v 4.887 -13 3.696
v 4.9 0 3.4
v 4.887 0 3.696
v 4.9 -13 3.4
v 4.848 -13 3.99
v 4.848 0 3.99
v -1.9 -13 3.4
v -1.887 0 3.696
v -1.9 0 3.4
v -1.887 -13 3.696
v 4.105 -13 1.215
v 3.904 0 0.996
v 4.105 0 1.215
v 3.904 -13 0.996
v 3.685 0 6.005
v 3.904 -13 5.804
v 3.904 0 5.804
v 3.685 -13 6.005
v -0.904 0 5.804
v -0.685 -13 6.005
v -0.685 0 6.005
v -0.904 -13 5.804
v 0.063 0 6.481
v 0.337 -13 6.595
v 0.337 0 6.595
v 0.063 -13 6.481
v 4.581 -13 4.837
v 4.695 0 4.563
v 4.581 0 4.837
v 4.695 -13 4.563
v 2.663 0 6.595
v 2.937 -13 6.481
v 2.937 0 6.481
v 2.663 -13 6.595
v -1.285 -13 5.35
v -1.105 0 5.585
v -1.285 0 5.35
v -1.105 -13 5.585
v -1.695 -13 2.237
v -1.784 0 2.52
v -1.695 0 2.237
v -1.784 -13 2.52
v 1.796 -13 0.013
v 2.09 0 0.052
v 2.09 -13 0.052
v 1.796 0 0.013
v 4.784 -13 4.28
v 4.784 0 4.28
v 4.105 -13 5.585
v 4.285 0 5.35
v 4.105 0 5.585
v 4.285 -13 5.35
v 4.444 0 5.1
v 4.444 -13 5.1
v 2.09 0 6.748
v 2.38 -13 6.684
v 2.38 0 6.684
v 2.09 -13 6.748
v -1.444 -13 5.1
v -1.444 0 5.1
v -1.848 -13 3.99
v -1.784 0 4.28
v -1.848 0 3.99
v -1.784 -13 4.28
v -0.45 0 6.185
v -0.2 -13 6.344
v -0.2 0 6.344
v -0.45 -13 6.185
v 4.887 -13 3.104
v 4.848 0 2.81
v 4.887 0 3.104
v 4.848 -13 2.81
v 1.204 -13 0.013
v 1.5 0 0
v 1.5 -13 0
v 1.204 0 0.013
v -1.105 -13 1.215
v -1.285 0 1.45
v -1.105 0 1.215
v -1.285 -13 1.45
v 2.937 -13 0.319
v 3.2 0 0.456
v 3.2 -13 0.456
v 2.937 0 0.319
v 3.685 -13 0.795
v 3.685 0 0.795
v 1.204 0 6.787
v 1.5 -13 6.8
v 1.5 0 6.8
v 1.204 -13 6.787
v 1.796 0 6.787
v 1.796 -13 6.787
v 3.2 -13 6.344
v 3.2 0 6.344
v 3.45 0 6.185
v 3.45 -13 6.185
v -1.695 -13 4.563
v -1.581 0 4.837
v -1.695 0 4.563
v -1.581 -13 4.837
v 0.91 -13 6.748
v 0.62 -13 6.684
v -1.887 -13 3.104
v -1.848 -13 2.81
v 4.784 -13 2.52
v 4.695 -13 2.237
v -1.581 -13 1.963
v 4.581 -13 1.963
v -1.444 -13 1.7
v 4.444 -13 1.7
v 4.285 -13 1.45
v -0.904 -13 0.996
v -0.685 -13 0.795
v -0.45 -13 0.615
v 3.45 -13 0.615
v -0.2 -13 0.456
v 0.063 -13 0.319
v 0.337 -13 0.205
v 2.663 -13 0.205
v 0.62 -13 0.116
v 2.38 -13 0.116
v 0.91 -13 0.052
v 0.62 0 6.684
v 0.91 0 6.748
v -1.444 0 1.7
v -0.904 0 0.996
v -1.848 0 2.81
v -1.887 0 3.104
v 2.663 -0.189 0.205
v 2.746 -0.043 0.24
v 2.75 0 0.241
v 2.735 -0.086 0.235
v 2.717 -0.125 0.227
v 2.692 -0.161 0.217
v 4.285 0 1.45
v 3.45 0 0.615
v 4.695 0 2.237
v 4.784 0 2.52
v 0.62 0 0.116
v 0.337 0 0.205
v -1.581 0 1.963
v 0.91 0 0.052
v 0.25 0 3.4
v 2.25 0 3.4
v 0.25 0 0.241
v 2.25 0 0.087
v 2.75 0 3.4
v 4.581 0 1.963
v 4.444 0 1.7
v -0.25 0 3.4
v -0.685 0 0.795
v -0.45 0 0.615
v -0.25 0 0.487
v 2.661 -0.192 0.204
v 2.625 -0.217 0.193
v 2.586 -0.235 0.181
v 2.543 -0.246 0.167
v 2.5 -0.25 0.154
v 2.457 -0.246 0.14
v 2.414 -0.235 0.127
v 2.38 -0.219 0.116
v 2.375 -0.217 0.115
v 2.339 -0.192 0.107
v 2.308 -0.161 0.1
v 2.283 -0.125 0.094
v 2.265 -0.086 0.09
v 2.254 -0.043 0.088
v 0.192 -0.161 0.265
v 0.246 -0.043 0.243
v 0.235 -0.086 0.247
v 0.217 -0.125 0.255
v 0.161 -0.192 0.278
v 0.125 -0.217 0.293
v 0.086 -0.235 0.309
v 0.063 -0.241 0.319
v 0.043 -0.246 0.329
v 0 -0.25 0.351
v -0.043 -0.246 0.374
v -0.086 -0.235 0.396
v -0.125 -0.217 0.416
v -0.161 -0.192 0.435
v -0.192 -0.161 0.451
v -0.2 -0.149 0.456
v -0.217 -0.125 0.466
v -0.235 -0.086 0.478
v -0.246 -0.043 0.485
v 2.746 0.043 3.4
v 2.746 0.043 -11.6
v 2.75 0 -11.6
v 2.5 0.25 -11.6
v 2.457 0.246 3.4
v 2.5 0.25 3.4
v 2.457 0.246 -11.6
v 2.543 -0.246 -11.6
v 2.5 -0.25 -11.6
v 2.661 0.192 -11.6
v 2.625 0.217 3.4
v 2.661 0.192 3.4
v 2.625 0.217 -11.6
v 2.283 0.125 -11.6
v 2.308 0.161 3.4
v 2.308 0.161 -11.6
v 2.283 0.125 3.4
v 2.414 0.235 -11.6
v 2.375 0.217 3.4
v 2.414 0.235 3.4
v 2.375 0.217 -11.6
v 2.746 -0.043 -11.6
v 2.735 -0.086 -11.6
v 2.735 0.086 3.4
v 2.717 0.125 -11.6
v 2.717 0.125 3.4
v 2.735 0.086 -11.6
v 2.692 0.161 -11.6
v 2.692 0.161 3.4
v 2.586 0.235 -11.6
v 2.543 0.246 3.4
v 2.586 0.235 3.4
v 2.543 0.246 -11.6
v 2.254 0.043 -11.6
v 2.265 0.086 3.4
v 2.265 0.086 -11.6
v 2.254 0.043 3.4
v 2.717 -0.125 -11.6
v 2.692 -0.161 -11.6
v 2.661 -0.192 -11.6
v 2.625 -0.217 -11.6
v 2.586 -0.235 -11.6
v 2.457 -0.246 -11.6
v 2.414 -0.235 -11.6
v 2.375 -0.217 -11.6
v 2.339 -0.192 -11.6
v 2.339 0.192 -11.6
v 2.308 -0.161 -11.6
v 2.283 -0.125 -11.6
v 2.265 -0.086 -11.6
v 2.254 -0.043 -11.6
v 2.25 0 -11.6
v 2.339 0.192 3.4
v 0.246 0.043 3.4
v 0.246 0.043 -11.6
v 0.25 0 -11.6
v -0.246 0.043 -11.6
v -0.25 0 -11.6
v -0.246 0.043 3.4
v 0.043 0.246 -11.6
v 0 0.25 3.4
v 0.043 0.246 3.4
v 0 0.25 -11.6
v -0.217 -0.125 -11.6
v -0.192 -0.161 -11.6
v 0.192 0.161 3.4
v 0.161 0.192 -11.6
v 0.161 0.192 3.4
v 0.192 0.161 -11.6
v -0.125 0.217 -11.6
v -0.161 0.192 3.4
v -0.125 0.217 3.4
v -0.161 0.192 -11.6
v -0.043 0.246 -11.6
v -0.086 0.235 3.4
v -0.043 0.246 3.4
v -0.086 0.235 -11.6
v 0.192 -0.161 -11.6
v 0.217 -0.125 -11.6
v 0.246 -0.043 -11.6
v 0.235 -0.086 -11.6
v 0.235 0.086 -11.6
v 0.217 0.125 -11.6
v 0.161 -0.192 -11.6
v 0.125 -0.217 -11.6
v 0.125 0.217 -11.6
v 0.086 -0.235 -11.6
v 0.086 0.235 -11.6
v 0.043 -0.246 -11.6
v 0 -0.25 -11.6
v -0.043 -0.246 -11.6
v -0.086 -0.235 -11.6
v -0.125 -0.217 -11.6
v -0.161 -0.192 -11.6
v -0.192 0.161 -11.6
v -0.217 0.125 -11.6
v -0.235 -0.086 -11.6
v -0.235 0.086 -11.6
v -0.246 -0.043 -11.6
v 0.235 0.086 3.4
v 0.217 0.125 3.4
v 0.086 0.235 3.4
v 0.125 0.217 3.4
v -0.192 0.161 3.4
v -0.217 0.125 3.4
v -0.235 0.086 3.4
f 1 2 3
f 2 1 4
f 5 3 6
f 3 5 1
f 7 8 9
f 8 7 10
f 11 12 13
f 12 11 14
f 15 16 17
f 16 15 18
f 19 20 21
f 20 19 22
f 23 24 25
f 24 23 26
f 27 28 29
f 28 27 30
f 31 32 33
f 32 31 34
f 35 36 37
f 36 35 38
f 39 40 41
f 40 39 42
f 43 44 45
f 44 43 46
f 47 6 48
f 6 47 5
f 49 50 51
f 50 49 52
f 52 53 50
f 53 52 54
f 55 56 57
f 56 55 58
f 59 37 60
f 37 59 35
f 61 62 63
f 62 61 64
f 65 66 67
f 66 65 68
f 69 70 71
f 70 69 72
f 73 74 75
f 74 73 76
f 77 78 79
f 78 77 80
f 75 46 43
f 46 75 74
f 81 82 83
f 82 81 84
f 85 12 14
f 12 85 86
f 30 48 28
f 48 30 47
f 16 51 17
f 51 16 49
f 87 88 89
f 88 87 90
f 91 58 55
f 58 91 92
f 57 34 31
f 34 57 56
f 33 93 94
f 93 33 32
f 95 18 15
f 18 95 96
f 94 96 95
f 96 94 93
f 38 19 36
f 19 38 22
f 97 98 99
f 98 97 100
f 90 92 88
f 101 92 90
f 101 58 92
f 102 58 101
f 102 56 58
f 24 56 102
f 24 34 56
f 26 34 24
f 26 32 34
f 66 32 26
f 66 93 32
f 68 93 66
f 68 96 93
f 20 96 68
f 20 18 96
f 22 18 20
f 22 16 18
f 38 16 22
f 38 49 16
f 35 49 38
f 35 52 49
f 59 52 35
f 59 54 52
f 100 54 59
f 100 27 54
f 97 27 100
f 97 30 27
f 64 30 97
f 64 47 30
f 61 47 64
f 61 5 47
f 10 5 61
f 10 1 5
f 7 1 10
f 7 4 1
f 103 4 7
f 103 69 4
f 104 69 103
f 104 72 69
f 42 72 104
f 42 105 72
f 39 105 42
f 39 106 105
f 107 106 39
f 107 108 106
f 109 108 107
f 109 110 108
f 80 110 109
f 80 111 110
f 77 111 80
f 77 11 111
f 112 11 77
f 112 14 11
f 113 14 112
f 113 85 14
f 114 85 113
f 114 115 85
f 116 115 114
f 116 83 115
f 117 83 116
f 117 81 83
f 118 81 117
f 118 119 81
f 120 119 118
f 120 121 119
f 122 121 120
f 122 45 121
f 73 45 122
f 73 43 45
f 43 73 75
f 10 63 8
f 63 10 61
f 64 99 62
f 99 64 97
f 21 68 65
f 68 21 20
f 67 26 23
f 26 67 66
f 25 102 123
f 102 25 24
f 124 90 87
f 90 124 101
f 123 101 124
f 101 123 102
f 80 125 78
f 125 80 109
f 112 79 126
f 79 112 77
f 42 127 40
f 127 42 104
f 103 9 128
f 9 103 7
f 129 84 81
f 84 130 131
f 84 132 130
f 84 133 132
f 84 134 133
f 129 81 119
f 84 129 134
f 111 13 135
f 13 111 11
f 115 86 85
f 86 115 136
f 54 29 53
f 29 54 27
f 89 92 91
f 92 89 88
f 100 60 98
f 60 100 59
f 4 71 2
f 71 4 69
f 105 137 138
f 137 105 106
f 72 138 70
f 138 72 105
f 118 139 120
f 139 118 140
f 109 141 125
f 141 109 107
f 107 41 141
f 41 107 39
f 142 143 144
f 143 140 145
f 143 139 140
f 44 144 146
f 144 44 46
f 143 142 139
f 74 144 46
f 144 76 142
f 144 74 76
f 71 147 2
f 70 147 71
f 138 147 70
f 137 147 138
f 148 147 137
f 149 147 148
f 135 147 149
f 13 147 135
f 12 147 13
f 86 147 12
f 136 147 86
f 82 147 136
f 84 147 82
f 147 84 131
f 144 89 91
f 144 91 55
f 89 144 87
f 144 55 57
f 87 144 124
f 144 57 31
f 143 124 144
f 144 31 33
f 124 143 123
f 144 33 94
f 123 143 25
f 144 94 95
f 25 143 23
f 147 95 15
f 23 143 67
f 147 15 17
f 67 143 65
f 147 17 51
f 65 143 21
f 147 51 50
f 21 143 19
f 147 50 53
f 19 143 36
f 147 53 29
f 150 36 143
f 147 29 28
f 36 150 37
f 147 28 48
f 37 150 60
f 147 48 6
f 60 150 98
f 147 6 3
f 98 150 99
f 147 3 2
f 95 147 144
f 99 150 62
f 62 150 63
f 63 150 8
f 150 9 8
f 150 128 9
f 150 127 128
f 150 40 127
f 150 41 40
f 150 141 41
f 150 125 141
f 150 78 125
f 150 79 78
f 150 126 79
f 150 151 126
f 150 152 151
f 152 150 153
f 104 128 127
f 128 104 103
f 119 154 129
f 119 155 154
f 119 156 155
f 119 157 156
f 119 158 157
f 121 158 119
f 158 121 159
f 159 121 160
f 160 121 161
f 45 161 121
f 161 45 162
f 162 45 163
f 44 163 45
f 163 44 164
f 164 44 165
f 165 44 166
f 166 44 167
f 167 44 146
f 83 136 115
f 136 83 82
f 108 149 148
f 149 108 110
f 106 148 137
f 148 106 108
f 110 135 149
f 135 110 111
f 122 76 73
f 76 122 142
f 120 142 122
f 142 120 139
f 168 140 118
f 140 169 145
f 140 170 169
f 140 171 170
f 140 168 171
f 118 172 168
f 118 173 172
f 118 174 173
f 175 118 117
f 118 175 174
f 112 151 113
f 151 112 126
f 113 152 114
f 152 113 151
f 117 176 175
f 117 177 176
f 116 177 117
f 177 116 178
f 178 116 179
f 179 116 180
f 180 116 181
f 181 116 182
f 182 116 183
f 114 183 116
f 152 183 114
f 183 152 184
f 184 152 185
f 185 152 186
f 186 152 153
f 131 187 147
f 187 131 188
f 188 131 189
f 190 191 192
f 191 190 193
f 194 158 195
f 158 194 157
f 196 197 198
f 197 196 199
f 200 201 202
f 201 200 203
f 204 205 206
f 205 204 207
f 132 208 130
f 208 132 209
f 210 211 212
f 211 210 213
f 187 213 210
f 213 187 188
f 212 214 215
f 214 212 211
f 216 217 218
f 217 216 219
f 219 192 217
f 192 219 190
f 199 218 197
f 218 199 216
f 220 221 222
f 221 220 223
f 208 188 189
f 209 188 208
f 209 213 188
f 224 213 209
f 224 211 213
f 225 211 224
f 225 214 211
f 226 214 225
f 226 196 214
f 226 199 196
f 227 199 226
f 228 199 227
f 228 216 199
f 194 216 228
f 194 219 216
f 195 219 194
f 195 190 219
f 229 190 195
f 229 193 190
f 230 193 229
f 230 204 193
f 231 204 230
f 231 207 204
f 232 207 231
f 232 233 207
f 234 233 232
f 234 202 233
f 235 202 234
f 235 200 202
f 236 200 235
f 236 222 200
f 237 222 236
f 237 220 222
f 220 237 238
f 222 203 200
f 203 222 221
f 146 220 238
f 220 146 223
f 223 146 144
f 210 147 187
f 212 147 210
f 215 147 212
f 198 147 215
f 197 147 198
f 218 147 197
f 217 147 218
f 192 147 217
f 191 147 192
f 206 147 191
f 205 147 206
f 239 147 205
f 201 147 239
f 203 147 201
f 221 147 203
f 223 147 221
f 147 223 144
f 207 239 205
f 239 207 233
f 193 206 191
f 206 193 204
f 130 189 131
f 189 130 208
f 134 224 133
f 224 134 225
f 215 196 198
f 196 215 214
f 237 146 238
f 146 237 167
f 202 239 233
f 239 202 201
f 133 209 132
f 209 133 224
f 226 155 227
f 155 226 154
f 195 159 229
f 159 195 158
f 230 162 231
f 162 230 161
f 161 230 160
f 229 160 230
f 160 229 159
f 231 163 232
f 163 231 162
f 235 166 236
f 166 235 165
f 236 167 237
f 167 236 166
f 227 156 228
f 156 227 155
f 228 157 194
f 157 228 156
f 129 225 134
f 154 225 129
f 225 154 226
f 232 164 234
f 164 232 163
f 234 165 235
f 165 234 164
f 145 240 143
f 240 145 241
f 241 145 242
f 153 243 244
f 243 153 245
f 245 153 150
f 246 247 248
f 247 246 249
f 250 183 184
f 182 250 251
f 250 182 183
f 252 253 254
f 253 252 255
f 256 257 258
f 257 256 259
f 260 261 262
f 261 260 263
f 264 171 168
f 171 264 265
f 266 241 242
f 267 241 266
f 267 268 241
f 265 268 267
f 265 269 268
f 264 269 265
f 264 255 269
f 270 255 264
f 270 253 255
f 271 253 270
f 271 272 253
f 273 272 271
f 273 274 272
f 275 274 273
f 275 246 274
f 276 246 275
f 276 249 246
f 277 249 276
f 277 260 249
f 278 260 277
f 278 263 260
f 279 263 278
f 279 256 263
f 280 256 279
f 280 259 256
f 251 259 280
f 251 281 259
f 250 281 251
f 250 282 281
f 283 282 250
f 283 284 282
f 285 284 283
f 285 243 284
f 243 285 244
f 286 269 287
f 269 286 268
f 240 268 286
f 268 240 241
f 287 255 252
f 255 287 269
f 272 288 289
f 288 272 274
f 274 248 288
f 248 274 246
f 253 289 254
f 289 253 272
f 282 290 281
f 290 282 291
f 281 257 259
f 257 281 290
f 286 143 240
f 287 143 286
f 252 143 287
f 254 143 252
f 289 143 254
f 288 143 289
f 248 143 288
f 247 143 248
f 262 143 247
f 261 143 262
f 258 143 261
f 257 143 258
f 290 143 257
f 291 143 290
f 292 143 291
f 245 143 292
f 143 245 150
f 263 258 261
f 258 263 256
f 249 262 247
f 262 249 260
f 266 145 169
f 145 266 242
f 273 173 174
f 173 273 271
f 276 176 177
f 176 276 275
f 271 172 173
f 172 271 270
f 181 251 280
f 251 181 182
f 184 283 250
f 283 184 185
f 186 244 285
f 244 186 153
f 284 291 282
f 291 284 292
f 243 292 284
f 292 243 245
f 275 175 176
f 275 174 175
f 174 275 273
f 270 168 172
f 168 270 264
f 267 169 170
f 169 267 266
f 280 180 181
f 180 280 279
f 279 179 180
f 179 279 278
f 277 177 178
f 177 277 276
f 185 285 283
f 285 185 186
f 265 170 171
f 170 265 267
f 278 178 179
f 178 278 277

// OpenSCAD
mm = 1;

//dimensons
CAP_HEIGHT_NOM = 12.5 * mm;
CAP_HEIGHT_TOL = 0.5 * mm;
CAP_DIA_NOM = 6.3 * mm;
CAP_DIA_TOL = 0.5 * mm;
CAP_LEG_DIA_NOM = 0.5 * mm;
CAP_LEG_PITCH = 2.5 * mm;
CAP_LEG_LENGTH_MIN = 15 * mm;

//calculated values
CAP_HEIGHT_MAX = CAP_HEIGHT_NOM + CAP_HEIGHT_TOL;
CAP_DIA_MAX = CAP_DIA_NOM + CAP_DIA_TOL;

translate([CAP_LEG_PITCH/2,0,0]){
translate([CAP_LEG_DIA_NOM/2,0,CAP_DIA_MAX/2]){
    rotate([90, 0, 0]){
  cylinder(h=CAP_HEIGHT_MAX, d = CAP_DIA_MAX, $fn = 72);
    }
}
    translate([CAP_LEG_PITCH/2, 0, -(CAP_LEG_LENGTH_MIN-CAP_DIA_MAX/2) ]){
        cylinder(h = CAP_LEG_LENGTH_MIN, d = CAP_LEG_DIA_NOM, $fn = 36);
    }
     translate([-CAP_LEG_PITCH/2, 0, -(CAP_LEG_LENGTH_MIN- CAP_DIA_MAX/2) ]){
        cylinder(h = CAP_LEG_LENGTH_MIN, d = CAP_LEG_DIA_NOM, $fn = 36);
    }
}
